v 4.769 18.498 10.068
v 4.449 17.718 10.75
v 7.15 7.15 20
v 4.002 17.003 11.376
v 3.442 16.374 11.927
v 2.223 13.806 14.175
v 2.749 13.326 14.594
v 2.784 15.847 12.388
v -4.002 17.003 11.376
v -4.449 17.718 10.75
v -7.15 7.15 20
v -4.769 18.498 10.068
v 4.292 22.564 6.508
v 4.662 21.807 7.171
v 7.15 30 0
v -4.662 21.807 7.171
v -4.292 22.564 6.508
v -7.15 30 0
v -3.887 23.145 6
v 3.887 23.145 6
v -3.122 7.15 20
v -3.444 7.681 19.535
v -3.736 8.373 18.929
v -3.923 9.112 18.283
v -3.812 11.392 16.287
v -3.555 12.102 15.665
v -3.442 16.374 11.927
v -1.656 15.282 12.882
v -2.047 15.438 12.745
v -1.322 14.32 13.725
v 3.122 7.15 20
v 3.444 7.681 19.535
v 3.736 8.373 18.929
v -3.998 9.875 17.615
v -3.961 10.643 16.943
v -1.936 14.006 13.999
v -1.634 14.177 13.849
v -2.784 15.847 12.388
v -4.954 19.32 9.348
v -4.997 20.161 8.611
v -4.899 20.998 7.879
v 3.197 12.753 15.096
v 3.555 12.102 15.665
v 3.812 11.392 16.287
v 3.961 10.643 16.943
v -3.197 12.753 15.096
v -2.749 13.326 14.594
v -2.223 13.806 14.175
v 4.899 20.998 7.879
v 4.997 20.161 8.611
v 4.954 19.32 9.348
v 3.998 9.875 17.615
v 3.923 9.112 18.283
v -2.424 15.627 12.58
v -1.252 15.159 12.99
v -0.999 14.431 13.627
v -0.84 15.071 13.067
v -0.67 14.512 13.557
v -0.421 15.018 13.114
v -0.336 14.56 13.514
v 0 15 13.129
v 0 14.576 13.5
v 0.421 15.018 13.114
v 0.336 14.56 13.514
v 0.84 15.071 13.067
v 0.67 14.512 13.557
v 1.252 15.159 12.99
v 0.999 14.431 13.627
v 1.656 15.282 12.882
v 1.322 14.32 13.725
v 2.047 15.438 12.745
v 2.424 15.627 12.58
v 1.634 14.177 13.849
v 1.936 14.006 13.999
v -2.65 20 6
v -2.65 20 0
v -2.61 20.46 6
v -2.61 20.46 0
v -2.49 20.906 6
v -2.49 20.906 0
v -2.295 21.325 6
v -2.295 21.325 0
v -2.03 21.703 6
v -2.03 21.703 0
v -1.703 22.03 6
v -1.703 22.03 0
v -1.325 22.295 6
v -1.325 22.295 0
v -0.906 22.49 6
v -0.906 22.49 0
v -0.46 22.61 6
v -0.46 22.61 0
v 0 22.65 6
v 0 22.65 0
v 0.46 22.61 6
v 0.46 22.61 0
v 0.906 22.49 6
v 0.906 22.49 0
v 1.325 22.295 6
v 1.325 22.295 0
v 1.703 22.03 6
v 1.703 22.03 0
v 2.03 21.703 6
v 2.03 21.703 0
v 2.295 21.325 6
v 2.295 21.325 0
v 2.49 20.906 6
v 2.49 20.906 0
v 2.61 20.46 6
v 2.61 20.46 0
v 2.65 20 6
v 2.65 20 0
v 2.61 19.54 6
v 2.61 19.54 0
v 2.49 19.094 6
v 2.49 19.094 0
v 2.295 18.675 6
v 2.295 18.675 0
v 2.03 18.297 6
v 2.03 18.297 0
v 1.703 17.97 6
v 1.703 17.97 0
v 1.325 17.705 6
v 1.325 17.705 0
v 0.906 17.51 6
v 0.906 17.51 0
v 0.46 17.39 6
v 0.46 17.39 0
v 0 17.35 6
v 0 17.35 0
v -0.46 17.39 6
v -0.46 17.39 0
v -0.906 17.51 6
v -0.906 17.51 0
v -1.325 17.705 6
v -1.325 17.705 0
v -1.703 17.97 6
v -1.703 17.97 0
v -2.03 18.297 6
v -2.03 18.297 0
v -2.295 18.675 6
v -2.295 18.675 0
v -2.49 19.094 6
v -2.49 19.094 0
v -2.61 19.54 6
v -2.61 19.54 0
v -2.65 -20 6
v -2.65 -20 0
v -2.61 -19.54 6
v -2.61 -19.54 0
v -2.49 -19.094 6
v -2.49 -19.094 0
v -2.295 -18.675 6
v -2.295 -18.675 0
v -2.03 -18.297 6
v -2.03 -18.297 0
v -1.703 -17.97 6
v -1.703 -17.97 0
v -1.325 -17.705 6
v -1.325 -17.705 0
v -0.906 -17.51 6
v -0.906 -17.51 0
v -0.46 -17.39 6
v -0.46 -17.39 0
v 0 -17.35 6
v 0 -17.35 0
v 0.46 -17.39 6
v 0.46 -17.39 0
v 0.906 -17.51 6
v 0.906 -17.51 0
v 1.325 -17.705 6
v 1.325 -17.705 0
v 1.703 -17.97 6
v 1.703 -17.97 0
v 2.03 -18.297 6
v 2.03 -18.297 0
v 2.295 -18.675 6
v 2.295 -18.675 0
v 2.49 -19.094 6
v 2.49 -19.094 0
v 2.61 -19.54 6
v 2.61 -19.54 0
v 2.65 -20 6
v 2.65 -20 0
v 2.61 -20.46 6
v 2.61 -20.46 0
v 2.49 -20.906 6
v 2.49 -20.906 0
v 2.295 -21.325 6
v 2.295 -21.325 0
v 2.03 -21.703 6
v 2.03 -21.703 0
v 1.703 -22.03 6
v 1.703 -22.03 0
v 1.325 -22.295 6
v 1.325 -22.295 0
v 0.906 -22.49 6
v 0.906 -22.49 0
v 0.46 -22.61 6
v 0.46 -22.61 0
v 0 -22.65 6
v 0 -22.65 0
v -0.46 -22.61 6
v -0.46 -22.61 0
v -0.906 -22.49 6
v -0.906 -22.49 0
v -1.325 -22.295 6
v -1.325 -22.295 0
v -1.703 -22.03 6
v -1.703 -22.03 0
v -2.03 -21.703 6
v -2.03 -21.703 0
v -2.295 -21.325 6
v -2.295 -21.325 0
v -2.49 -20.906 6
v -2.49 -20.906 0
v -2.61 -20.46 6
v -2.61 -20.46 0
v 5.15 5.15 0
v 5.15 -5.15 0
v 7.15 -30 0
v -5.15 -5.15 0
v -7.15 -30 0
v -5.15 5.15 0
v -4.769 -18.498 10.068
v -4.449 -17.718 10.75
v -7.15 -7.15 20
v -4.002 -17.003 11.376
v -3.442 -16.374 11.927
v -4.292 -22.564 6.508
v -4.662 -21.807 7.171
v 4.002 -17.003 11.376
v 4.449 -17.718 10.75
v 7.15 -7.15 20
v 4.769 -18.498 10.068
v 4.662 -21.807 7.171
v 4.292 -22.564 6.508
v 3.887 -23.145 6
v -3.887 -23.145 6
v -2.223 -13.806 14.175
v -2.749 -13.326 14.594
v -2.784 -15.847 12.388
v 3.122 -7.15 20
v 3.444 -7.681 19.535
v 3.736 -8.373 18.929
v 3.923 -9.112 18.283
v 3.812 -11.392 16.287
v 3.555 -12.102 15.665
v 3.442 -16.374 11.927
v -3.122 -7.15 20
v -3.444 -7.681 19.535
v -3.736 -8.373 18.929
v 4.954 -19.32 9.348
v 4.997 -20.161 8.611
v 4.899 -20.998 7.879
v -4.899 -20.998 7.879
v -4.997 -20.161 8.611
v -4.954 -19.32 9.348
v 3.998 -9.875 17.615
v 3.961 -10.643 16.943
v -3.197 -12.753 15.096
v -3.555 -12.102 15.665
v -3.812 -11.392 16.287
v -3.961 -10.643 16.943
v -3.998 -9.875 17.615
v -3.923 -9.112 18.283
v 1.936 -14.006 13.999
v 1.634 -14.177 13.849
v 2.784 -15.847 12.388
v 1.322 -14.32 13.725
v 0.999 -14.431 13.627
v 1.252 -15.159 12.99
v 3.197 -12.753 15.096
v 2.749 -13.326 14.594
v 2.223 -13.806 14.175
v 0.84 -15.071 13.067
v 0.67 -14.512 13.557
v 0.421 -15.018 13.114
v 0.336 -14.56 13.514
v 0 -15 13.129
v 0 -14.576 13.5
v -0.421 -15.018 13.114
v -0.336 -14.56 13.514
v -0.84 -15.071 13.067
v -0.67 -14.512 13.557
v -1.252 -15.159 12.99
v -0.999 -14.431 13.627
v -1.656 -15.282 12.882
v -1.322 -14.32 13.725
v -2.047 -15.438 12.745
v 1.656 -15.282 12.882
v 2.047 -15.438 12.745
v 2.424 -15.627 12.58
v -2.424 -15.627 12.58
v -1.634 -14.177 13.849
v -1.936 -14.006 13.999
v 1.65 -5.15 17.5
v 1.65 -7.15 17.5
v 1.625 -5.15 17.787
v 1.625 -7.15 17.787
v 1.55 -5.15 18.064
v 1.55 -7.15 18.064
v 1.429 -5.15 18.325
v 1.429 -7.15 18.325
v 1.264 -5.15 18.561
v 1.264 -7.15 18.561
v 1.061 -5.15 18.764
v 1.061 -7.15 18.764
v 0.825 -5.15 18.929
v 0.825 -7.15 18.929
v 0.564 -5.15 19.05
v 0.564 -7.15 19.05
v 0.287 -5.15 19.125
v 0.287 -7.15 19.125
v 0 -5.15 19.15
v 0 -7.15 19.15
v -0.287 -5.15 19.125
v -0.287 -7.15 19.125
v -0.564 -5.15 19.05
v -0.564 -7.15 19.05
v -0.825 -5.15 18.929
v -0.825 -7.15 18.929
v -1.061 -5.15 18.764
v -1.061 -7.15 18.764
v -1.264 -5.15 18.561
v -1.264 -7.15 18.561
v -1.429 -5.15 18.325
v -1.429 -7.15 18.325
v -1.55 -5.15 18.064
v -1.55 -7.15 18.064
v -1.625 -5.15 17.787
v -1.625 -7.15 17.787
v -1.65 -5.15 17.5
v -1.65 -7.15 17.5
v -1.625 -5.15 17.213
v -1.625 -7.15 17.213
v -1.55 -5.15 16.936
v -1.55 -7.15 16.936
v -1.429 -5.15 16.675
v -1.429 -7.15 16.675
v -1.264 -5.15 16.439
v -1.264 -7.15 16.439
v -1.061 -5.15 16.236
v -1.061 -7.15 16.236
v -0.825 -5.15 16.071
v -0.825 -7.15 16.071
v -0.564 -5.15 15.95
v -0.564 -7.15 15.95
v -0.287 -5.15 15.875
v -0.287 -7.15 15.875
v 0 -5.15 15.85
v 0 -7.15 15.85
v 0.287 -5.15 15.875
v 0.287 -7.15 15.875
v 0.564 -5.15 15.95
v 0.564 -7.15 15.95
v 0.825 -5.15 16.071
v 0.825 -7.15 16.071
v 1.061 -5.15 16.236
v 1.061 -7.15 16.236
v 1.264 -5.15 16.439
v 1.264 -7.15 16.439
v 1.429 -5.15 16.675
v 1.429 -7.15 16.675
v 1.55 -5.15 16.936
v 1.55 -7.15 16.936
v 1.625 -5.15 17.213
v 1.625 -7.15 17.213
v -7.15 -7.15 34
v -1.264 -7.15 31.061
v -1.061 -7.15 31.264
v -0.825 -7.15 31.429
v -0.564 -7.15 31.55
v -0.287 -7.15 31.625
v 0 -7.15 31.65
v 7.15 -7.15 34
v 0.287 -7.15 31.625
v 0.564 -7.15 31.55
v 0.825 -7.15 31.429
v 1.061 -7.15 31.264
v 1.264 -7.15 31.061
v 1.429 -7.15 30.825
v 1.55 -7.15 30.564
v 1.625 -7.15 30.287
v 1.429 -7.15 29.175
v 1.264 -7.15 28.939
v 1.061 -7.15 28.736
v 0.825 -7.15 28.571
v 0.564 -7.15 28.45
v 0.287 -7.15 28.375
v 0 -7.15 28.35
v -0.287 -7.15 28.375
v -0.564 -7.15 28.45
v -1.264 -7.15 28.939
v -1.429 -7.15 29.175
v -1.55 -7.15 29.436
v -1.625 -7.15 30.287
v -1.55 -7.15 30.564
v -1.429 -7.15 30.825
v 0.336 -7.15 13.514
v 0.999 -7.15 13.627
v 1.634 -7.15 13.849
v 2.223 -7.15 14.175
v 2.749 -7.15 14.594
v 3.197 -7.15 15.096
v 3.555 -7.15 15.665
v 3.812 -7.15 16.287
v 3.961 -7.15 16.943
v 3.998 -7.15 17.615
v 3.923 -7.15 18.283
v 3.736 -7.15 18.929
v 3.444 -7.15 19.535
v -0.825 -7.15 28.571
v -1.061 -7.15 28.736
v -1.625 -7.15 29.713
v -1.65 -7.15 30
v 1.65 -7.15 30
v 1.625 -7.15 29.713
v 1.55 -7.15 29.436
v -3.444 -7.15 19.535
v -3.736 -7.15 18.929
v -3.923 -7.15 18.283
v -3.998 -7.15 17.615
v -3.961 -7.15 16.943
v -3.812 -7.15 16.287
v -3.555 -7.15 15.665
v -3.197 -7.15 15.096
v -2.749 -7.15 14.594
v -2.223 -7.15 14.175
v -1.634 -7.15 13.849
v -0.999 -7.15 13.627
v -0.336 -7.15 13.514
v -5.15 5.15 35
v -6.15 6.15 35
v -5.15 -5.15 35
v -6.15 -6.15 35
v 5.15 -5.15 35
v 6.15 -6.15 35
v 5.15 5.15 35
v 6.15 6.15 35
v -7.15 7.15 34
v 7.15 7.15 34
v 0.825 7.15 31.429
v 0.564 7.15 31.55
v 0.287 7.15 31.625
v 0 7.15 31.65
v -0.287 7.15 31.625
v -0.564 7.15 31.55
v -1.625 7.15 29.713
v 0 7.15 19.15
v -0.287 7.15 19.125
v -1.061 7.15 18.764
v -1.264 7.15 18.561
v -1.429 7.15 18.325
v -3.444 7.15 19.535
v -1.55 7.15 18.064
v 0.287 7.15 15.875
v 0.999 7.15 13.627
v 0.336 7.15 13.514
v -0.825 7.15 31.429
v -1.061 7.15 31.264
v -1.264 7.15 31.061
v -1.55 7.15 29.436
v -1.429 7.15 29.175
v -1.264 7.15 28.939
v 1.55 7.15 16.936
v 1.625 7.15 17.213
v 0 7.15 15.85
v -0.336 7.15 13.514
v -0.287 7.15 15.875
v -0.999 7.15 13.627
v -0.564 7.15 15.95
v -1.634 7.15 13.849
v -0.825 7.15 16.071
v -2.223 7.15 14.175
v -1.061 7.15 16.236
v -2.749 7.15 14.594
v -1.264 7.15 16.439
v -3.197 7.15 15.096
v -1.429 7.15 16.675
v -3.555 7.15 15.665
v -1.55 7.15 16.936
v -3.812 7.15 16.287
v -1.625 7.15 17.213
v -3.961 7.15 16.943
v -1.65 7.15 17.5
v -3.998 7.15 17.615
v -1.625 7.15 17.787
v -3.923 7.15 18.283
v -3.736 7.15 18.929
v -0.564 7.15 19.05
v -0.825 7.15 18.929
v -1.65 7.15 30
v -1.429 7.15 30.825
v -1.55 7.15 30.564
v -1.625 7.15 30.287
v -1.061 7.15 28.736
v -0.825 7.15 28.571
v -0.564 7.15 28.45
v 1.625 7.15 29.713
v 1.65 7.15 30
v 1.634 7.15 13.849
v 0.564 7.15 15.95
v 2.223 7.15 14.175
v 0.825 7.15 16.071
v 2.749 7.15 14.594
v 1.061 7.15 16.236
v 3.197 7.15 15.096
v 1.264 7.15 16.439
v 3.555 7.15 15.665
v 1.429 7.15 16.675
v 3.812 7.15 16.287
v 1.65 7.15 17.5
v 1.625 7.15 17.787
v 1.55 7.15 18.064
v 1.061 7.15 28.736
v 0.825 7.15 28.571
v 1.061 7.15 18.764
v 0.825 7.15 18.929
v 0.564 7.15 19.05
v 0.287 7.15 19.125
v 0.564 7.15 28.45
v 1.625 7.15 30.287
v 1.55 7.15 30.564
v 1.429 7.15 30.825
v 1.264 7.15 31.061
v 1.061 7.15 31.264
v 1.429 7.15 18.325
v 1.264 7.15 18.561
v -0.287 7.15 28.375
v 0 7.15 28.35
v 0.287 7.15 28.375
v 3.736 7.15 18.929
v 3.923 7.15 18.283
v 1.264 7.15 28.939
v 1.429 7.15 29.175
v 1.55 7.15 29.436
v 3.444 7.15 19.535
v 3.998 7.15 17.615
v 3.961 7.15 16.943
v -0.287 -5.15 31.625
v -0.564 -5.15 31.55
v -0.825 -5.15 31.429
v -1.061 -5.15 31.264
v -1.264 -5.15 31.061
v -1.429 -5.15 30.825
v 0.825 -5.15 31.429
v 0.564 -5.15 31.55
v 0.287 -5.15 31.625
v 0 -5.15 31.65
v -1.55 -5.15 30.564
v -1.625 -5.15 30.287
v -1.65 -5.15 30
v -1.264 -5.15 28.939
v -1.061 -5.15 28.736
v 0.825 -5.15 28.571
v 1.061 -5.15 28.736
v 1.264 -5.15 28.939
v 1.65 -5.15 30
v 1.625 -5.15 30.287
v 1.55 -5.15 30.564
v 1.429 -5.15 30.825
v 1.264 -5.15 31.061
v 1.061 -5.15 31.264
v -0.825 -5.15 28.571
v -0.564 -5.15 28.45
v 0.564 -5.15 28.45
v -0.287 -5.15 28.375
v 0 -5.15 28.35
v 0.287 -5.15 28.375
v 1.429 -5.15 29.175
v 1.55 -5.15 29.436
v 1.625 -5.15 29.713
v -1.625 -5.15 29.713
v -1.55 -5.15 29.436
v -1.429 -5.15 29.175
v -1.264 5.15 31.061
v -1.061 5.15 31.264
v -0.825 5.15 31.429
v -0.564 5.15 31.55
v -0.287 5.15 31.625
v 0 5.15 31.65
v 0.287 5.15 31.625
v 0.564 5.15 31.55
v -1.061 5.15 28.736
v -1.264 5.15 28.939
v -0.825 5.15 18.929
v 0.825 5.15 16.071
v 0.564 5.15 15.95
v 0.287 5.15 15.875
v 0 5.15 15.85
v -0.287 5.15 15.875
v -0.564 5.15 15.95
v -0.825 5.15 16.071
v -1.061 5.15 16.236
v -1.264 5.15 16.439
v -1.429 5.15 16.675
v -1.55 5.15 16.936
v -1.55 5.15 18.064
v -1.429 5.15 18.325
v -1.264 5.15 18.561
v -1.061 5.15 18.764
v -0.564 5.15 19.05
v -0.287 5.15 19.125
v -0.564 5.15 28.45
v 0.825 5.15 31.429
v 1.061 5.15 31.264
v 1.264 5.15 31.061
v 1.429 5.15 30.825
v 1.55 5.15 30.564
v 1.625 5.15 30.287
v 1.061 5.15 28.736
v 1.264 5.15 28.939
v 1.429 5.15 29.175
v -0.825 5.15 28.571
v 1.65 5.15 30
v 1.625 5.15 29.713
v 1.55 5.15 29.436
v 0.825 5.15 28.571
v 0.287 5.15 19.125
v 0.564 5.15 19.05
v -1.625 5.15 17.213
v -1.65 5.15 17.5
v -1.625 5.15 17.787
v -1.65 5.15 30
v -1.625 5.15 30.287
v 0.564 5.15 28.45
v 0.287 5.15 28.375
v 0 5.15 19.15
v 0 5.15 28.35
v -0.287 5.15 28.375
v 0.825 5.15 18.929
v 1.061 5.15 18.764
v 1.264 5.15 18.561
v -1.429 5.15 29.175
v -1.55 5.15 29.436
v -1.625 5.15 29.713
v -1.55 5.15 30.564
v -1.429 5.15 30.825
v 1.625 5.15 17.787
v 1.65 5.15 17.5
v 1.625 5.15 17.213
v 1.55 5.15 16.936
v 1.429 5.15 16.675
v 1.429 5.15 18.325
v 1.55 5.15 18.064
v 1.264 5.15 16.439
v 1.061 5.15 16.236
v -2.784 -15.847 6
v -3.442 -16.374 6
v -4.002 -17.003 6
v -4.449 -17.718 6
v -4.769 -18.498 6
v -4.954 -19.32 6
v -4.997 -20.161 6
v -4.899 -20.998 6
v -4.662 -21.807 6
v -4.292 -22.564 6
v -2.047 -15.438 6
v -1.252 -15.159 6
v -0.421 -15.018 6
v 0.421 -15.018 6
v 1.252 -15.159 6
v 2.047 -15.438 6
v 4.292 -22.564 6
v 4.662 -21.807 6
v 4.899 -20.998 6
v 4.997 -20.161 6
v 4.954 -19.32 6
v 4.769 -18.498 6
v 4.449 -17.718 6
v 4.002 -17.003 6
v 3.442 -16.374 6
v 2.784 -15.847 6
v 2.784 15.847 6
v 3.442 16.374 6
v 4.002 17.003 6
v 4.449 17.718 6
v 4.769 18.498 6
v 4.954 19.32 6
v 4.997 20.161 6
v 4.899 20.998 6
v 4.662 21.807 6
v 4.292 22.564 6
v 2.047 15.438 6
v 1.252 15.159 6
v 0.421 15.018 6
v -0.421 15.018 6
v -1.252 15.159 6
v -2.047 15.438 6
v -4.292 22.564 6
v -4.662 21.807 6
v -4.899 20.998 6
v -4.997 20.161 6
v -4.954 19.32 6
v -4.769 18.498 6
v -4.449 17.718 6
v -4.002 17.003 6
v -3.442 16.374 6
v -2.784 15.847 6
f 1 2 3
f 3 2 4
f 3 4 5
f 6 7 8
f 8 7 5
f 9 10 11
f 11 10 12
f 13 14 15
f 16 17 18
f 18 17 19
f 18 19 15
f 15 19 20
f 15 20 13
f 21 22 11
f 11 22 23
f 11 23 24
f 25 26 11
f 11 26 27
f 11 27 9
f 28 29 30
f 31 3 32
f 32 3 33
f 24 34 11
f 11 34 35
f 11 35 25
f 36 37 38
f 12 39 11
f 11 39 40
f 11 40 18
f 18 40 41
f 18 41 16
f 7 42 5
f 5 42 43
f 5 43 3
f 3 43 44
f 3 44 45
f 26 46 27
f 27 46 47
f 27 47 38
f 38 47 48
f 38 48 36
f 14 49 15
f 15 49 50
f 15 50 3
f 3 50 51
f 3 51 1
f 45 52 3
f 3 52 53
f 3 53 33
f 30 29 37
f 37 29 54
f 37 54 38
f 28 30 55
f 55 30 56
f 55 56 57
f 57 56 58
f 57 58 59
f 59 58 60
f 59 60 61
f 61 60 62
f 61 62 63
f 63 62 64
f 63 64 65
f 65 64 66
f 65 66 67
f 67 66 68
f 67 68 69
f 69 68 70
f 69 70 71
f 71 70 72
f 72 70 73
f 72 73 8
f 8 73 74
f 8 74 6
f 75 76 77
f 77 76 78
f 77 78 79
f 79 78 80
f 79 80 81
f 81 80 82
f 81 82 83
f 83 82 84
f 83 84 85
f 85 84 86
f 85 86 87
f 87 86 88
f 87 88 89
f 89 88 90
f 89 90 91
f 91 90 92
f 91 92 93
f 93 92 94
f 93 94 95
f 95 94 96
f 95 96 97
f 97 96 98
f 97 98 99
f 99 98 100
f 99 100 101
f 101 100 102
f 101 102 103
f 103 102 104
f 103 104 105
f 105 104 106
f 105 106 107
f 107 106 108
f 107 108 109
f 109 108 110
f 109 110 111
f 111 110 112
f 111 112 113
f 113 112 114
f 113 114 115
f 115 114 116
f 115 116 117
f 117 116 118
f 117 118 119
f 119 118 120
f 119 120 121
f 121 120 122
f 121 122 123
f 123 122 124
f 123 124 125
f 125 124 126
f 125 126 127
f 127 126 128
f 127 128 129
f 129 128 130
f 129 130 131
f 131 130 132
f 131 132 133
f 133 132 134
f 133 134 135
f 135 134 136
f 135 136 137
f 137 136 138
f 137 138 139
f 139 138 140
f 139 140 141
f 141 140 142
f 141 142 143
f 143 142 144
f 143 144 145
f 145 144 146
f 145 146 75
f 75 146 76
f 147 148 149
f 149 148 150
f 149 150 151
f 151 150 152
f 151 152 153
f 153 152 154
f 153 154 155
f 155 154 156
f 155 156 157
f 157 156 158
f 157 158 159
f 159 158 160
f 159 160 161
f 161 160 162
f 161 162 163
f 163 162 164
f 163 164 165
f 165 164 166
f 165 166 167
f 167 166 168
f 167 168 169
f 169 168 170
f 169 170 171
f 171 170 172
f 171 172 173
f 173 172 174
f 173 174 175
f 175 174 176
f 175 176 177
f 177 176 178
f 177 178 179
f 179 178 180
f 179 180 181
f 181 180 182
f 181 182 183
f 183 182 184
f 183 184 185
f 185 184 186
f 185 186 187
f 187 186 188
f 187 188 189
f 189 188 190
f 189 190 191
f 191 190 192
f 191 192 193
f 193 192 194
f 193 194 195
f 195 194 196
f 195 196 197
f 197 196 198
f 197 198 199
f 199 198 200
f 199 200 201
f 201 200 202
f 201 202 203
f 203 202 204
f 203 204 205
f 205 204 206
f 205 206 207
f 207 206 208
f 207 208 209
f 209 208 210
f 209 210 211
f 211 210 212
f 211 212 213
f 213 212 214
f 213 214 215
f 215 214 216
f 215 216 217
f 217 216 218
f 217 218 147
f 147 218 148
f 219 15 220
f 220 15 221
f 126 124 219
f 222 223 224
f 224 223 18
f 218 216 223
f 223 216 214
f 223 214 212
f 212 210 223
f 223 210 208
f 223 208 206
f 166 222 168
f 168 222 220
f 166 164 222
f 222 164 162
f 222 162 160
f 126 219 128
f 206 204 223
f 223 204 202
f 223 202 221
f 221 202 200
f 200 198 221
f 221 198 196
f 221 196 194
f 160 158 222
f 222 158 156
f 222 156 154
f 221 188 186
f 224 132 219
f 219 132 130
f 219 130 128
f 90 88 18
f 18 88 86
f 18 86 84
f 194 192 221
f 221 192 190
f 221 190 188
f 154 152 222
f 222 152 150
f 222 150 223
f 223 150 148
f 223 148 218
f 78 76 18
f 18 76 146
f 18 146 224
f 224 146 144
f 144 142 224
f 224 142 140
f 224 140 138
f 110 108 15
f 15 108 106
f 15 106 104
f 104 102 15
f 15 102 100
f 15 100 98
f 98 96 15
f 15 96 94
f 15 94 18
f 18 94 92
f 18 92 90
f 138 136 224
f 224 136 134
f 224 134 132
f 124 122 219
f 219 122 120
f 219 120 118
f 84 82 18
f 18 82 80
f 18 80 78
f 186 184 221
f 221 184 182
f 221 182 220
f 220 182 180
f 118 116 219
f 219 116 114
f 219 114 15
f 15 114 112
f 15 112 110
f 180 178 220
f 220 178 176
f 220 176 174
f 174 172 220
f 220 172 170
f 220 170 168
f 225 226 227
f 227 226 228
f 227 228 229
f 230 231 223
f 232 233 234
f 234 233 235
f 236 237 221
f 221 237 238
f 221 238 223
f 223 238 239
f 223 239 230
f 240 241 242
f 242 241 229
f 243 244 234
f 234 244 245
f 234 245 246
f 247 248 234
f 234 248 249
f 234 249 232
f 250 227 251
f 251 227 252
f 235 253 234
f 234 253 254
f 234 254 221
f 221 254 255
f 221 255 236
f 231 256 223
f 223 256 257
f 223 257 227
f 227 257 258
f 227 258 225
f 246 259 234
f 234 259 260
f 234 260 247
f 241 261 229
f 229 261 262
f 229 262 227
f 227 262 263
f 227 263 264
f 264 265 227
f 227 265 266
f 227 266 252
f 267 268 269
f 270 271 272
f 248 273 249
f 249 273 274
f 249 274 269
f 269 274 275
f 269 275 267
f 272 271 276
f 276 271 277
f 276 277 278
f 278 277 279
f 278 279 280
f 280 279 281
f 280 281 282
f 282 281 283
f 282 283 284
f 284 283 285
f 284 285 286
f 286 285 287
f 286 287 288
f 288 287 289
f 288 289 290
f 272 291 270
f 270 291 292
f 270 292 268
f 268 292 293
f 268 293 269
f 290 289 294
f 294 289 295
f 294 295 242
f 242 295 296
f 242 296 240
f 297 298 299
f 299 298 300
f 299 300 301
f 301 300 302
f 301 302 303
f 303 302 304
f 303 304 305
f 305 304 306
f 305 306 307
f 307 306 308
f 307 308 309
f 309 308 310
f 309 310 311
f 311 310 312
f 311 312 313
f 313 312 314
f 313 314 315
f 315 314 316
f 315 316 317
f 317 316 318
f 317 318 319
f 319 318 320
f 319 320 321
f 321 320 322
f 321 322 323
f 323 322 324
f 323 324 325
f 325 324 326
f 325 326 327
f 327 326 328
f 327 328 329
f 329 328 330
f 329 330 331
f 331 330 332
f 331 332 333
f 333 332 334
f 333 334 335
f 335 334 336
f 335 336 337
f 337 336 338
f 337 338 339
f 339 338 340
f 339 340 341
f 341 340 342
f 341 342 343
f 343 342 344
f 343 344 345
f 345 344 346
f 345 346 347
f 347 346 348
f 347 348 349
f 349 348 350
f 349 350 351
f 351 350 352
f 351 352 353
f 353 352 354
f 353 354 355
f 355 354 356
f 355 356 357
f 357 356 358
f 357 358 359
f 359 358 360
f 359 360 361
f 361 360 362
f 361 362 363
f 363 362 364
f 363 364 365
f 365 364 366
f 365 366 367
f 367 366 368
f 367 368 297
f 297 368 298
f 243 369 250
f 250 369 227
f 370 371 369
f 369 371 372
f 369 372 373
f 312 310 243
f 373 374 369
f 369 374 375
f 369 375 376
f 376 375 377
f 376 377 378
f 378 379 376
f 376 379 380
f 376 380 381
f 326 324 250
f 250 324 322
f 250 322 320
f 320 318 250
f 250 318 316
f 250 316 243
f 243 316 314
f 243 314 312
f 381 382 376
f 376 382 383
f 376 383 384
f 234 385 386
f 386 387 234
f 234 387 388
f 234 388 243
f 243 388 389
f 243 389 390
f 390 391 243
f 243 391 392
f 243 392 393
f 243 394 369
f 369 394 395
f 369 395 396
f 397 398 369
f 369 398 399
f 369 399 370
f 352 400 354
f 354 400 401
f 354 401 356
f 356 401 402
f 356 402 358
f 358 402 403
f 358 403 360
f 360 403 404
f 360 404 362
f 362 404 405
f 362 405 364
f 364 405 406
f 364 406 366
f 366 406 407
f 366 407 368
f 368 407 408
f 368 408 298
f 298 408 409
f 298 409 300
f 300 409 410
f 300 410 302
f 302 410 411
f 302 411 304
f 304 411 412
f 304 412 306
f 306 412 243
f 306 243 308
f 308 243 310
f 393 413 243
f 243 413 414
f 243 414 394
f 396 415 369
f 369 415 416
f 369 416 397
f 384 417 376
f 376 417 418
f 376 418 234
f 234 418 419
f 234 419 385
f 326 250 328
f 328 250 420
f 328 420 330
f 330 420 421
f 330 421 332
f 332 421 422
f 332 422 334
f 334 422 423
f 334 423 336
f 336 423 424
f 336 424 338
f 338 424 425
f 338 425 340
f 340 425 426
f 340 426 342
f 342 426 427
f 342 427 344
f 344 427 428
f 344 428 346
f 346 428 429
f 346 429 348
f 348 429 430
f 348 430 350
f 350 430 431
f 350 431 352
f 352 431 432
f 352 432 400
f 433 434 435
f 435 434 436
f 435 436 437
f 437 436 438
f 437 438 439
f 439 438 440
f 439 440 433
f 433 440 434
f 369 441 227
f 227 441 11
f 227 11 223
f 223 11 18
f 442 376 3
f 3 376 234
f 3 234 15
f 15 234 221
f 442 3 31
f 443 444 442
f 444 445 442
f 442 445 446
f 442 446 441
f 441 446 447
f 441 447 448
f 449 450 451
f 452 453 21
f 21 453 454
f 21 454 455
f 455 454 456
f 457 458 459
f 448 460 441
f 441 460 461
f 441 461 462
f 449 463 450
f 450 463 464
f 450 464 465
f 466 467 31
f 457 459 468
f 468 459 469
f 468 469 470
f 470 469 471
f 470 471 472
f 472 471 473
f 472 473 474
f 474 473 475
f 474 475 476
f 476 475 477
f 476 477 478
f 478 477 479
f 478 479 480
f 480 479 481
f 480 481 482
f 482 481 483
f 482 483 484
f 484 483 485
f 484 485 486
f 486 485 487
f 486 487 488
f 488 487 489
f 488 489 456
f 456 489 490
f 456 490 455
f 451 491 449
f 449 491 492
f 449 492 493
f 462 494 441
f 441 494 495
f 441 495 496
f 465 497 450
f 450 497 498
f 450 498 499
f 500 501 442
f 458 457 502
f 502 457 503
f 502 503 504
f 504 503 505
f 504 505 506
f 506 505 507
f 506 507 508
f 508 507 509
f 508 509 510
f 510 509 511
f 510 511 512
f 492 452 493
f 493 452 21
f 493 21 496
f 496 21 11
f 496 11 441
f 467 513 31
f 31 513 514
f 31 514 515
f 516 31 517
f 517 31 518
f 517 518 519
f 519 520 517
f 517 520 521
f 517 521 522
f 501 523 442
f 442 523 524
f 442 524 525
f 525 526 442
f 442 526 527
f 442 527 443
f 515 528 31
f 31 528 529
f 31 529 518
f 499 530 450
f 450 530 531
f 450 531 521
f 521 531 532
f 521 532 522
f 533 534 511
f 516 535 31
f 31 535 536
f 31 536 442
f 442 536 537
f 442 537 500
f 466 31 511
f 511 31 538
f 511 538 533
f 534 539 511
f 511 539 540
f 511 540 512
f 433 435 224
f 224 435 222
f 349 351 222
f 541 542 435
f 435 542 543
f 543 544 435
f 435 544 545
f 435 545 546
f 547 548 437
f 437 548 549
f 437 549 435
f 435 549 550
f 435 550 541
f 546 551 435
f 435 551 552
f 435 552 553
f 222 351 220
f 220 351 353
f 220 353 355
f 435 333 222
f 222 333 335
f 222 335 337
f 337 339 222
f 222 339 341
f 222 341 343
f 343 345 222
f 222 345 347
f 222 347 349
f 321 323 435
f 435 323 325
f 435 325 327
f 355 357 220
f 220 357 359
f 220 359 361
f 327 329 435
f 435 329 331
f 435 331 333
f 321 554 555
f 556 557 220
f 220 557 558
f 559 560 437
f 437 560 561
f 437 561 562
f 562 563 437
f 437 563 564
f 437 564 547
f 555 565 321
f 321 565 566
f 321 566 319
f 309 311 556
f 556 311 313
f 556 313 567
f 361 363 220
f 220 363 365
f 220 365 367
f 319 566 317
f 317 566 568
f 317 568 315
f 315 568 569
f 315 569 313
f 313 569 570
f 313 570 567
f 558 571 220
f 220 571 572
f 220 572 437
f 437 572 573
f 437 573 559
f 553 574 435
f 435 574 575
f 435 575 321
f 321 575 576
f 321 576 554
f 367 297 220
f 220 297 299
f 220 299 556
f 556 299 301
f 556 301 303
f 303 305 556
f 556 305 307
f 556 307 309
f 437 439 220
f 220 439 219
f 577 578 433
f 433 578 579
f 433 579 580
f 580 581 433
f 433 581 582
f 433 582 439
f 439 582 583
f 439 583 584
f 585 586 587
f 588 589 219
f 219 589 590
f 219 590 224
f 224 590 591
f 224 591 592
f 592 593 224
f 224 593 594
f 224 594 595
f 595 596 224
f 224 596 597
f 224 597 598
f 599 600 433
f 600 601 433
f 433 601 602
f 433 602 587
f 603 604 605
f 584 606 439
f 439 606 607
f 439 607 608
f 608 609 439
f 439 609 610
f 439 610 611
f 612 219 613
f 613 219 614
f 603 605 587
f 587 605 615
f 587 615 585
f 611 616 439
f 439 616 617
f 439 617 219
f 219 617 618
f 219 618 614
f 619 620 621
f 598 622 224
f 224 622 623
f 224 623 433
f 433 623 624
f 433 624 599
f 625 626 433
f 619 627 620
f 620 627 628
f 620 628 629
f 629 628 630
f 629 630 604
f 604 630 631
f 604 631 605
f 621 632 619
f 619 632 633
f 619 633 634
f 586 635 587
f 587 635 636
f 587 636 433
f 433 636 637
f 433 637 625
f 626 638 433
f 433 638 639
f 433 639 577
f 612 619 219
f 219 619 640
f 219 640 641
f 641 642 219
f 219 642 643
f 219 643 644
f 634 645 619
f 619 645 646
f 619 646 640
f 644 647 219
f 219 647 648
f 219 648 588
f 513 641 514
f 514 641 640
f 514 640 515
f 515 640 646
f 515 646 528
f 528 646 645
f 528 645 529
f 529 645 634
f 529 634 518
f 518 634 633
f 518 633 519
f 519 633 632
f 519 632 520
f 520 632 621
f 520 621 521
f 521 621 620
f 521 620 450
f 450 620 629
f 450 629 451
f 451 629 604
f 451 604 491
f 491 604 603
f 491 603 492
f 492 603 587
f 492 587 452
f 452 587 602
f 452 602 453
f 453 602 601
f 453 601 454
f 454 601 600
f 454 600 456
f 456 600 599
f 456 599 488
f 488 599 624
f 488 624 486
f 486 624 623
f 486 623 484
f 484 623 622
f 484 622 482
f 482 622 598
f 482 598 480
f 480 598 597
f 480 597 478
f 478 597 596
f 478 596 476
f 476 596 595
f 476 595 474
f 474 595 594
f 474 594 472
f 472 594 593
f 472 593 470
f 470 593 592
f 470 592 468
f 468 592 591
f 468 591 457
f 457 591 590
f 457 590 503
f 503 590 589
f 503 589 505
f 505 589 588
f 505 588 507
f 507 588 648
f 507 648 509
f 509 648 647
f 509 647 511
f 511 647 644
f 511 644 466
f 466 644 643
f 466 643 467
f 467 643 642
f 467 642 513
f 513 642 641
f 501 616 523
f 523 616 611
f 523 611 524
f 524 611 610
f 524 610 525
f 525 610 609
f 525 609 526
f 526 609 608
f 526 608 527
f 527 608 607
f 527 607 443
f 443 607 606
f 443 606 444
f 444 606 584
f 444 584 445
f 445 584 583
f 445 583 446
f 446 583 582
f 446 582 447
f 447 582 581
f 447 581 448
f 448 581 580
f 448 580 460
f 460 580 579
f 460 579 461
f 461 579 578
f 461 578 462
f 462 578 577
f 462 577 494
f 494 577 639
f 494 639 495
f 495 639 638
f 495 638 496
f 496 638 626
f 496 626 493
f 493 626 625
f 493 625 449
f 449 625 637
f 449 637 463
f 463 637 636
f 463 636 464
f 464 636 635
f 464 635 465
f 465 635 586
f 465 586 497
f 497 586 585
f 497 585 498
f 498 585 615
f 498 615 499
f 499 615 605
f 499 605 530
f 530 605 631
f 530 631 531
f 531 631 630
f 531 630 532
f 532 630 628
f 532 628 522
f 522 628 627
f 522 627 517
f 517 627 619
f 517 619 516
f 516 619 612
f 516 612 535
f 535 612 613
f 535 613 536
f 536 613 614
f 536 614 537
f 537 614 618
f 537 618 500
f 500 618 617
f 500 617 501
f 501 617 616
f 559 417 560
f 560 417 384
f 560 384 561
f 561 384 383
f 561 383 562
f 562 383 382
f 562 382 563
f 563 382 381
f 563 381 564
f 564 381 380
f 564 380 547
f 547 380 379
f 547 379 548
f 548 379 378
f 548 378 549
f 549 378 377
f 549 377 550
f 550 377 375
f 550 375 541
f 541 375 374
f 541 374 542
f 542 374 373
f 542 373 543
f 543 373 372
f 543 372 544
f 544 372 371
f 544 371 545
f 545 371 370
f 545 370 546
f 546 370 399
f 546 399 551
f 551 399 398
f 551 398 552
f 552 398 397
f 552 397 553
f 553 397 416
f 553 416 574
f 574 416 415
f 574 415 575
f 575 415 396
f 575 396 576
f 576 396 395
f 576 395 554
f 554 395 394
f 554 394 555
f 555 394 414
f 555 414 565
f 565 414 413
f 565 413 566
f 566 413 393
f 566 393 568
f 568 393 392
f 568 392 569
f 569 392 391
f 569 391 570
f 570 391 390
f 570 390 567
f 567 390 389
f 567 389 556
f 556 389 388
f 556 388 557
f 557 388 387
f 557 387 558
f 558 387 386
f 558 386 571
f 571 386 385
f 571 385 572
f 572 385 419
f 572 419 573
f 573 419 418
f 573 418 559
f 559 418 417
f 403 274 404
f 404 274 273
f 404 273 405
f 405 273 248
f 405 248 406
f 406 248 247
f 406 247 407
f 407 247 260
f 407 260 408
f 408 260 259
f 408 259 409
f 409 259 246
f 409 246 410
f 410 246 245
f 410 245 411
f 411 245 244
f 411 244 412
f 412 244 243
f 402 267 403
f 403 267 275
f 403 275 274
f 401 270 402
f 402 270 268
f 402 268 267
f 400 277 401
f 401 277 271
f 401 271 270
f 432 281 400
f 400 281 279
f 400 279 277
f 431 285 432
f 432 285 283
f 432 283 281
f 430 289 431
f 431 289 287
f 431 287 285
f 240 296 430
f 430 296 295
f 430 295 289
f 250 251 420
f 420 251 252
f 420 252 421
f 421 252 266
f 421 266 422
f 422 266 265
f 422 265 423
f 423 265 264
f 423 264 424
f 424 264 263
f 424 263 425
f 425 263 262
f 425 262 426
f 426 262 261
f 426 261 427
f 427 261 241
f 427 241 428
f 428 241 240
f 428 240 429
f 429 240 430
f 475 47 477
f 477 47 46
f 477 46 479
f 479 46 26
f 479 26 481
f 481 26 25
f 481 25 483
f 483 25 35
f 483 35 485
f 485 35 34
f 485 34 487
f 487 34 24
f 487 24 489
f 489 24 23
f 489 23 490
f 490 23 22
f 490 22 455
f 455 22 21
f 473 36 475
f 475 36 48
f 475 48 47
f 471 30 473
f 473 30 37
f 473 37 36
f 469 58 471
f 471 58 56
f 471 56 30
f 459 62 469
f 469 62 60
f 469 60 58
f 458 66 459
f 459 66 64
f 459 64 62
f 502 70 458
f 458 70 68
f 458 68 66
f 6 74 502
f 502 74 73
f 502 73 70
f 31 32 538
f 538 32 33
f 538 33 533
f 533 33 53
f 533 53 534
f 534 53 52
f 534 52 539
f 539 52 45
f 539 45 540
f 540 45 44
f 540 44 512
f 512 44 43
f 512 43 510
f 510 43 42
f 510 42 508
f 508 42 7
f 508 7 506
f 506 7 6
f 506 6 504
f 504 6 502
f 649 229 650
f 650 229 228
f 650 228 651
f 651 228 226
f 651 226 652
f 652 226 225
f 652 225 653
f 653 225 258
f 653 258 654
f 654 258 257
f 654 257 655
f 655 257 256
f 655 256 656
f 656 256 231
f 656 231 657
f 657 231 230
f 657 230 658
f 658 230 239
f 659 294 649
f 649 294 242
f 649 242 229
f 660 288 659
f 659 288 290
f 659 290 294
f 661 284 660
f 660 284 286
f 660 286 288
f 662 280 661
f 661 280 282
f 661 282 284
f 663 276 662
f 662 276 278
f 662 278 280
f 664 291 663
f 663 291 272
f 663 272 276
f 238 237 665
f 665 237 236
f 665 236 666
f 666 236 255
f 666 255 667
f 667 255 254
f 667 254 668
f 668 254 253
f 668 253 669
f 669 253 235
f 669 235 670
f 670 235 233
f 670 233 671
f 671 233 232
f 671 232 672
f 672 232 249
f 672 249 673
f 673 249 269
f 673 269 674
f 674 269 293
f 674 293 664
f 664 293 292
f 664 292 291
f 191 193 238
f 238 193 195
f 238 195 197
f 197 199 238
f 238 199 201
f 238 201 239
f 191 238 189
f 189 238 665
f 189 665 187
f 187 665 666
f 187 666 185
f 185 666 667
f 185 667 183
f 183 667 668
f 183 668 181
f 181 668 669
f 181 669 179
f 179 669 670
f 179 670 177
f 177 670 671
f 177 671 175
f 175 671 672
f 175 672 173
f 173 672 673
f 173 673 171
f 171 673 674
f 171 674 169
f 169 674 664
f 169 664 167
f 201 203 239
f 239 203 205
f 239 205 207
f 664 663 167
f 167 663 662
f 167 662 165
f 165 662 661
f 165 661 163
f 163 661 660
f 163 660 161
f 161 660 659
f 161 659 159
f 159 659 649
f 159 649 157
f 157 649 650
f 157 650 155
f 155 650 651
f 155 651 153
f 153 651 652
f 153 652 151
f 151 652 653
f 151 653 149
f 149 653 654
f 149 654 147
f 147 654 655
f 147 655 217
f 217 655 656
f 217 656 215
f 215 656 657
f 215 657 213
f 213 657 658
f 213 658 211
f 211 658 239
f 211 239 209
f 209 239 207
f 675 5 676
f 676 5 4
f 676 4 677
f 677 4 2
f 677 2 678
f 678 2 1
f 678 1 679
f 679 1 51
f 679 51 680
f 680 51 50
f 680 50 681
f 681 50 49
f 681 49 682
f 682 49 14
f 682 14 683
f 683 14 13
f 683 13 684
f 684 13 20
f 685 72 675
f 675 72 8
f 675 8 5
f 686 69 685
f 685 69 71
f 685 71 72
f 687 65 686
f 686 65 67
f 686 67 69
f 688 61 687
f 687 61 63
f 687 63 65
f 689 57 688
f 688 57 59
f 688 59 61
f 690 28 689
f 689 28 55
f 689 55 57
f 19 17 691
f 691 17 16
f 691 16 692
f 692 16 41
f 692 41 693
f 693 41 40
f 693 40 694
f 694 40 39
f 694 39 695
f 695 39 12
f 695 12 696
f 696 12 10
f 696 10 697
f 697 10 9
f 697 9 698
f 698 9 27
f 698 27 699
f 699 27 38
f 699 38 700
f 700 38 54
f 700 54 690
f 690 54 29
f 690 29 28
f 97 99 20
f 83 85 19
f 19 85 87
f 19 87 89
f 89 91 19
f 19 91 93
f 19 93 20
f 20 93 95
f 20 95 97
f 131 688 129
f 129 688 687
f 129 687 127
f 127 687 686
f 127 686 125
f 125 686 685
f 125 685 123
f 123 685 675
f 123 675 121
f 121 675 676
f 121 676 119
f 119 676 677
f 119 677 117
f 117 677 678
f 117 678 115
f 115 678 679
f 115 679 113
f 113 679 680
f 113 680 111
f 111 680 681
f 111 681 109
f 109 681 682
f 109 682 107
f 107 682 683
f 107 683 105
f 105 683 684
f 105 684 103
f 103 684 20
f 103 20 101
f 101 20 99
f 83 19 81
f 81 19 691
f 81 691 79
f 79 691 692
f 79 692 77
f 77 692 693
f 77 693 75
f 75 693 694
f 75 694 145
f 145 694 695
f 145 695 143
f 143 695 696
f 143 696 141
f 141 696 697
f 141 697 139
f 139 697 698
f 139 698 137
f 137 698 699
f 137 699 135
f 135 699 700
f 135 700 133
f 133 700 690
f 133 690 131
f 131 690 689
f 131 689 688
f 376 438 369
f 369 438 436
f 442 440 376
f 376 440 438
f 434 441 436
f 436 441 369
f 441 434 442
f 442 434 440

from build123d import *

# Parameters (mm, degrees)
SKETCH_1_W               = 14.3
SKETCH_1_H               = 14.3
SKETCH_1_W_2             = 10.3
SKETCH_1_H_2             = 10.3
EXTRUDE_1_DEPTH          = 35
EXTRUDE_1_2_DEPTH        = 14.3
CUT_EXTRUDE_1_DEPTH      = 52.538771813
CUT_EXTRUDE_1_DEPTH_BACK = 52.538771813
SKETCH_3_R               = 1.65
SKETCH_3_4_R             = 1.65
CUT_EXTRUDE_2_DEPTH      = 52.538771813
CUT_EXTRUDE_START        = -14.3
SKETCH_3_5_R             = 1.65
CUT_EXTRUDE_3_DEPTH      = 38.238771813
CUT_EXTRUDE_4_REACH      = 48.649
SKETCH_4_R               = 2.65
CUT_EXTRUDE_START_2      = -13.129103
SKETCH_4_3_R             = 5
CUT_EXTRUDE_5_DEPTH      = 7.129103
CHAMFER_1_SIZE           = 1


with BuildPart() as part:
    # 草图1 → Extrude 1 (new body)
    with BuildSketch(Plane.XY):
        Rectangle(SKETCH_1_W, SKETCH_1_H)
        Rectangle(SKETCH_1_W_2, SKETCH_1_H_2, mode=Mode.SUBTRACT)
    extrude(amount=EXTRUDE_1_DEPTH)

    # 草图2 → Extrude 1 2 (add)
    with BuildSketch(Plane.ZY.offset(7.15)):
        Polygon((0, 30), (0, 7.15), (20, 7.15), align=None)
        Polygon((0, -7.15), (0, -30), (20, -7.15), align=None)
    extrude(amount=-EXTRUDE_1_2_DEPTH)

    # 草图3 → 切除-拉伸1 (cut, two sides: drawn at the far end of the back side and taken through both)
    with BuildSketch(Plane.XZ.offset(7.15).offset(-CUT_EXTRUDE_1_DEPTH_BACK)):
        with Locations((0, 30)):
            Circle(SKETCH_3_R)
        with Locations(Location((0, 17.5, 0), (0, 0, 270))):
            Circle(SKETCH_3_R)
    extrude(amount=CUT_EXTRUDE_1_DEPTH + CUT_EXTRUDE_1_DEPTH_BACK, mode=Mode.SUBTRACT)

    # 草图3<4> → 切除-拉伸2 (cut, through all)
    # profile 1 of 2: a face of its own
    with BuildSketch(Plane.XZ.offset(7.15)):
        with BuildLine():
            ThreePointArc((-3.122498999, 20), (-1.324764885, 13.725745372), (4, 17.5))
            ThreePointArc((4, 17.5), (3.774254628, 18.824764885), (3.122498999, 20))
            Line((3.122498999, 20), (-3.122498999, 20))
        make_face()
        with Locations((0, 17.5)):
            Circle(SKETCH_3_4_R, mode=Mode.SUBTRACT)
    # profile 2 of 2: a face of its own
    with BuildSketch(Plane.XZ.offset(7.15)):
        with BuildLine():
            ThreePointArc((-3.122498999, 20), (-1.324764885, 13.725745372), (4, 17.5))
            ThreePointArc((4, 17.5), (3.774254628, 18.824764885), (3.122498999, 20))
            Line((3.122498999, 20), (-3.122498999, 20))
        make_face()
        with Locations((0, 17.5)):
            Circle(SKETCH_3_4_R, mode=Mode.SUBTRACT)
    extrude(amount=CUT_EXTRUDE_2_DEPTH, mode=Mode.SUBTRACT)

    # 草图3<5> → 切除-拉伸3 (cut, through all)
    # profile 1 of 2: a face of its own
    with BuildSketch(Plane.XZ.offset(7.15).offset(CUT_EXTRUDE_START)):
        with BuildLine():
            ThreePointArc((-3.122498999, 20), (-1.324764885, 13.725745372), (4, 17.5))
            ThreePointArc((4, 17.5), (3.774254628, 18.824764885), (3.122498999, 20))
            Line((3.122498999, 20), (-3.122498999, 20))
        make_face()
        with Locations((0, 17.5)):
            Circle(SKETCH_3_5_R, mode=Mode.SUBTRACT)
    # profile 2 of 2: a face of its own
    with BuildSketch(Plane.XZ.offset(7.15).offset(CUT_EXTRUDE_START)):
        with BuildLine():
            ThreePointArc((-3.122498999, 20), (-1.324764885, 13.725745372), (4, 17.5))
            ThreePointArc((4, 17.5), (3.774254628, 18.824764885), (3.122498999, 20))
            Line((3.122498999, 20), (-3.122498999, 20))
        make_face()
        with Locations((0, 17.5)):
            Circle(SKETCH_3_5_R, mode=Mode.SUBTRACT)
    extrude(amount=-CUT_EXTRUDE_3_DEPTH, mode=Mode.SUBTRACT)

    # 草图4 → 切除-拉伸4 (cut, up to next)
    with BuildSketch(Plane(origin=(0, 0, 0), x_dir=(-1, 0, 0), z_dir=(0, 0, -1)), mode=Mode.PRIVATE) as cut_extrude_4_sk1:
        with Locations((0, 20)):
            Circle(SKETCH_4_R)
    cut_extrude_4_tool1 = extrude(cut_extrude_4_sk1.sketch, amount=-CUT_EXTRUDE_4_REACH, mode=Mode.PRIVATE) & part.part
    # 草图4 → 切除-拉伸4 (cut, up to next)
    with BuildSketch(Plane(origin=(0, 0, 0), x_dir=(-1, 0, 0), z_dir=(0, 0, -1)), mode=Mode.PRIVATE) as cut_extrude_4_sk2:
        with Locations((0, -20)):
            Circle(SKETCH_4_R)
    cut_extrude_4_tool2 = extrude(cut_extrude_4_sk2.sketch, amount=-CUT_EXTRUDE_4_REACH, mode=Mode.PRIVATE) & part.part
    add(cut_extrude_4_tool1.solids().sort_by_distance((0, 20, 0))[0], mode=Mode.SUBTRACT)
    add(cut_extrude_4_tool2.solids().sort_by_distance((0, -20, 0))[0], mode=Mode.SUBTRACT)

    # 草图4<3> → 切除-拉伸5 (cut)
    with BuildSketch(Plane(origin=(0, 0, 0), x_dir=(-1, 0, 0), z_dir=(0, 0, -1)).offset(CUT_EXTRUDE_START_2)):
        with Locations((0, 20)):
            Circle(SKETCH_4_3_R)
        with Locations((0, -20)):
            Circle(SKETCH_4_3_R)
    extrude(amount=CUT_EXTRUDE_5_DEPTH, mode=Mode.SUBTRACT)

    # 倒角1
    chamfer_1_edges = [part.edges().sort_by_distance(p)[0] for p in [
        (7.15, 0, 35),
        (0, 7.15, 35),
        (-7.15, 0, 35),
        (0, -7.15, 35),
    ]]
    chamfer(chamfer_1_edges, length=CHAMFER_1_SIZE)


solid = part.part
